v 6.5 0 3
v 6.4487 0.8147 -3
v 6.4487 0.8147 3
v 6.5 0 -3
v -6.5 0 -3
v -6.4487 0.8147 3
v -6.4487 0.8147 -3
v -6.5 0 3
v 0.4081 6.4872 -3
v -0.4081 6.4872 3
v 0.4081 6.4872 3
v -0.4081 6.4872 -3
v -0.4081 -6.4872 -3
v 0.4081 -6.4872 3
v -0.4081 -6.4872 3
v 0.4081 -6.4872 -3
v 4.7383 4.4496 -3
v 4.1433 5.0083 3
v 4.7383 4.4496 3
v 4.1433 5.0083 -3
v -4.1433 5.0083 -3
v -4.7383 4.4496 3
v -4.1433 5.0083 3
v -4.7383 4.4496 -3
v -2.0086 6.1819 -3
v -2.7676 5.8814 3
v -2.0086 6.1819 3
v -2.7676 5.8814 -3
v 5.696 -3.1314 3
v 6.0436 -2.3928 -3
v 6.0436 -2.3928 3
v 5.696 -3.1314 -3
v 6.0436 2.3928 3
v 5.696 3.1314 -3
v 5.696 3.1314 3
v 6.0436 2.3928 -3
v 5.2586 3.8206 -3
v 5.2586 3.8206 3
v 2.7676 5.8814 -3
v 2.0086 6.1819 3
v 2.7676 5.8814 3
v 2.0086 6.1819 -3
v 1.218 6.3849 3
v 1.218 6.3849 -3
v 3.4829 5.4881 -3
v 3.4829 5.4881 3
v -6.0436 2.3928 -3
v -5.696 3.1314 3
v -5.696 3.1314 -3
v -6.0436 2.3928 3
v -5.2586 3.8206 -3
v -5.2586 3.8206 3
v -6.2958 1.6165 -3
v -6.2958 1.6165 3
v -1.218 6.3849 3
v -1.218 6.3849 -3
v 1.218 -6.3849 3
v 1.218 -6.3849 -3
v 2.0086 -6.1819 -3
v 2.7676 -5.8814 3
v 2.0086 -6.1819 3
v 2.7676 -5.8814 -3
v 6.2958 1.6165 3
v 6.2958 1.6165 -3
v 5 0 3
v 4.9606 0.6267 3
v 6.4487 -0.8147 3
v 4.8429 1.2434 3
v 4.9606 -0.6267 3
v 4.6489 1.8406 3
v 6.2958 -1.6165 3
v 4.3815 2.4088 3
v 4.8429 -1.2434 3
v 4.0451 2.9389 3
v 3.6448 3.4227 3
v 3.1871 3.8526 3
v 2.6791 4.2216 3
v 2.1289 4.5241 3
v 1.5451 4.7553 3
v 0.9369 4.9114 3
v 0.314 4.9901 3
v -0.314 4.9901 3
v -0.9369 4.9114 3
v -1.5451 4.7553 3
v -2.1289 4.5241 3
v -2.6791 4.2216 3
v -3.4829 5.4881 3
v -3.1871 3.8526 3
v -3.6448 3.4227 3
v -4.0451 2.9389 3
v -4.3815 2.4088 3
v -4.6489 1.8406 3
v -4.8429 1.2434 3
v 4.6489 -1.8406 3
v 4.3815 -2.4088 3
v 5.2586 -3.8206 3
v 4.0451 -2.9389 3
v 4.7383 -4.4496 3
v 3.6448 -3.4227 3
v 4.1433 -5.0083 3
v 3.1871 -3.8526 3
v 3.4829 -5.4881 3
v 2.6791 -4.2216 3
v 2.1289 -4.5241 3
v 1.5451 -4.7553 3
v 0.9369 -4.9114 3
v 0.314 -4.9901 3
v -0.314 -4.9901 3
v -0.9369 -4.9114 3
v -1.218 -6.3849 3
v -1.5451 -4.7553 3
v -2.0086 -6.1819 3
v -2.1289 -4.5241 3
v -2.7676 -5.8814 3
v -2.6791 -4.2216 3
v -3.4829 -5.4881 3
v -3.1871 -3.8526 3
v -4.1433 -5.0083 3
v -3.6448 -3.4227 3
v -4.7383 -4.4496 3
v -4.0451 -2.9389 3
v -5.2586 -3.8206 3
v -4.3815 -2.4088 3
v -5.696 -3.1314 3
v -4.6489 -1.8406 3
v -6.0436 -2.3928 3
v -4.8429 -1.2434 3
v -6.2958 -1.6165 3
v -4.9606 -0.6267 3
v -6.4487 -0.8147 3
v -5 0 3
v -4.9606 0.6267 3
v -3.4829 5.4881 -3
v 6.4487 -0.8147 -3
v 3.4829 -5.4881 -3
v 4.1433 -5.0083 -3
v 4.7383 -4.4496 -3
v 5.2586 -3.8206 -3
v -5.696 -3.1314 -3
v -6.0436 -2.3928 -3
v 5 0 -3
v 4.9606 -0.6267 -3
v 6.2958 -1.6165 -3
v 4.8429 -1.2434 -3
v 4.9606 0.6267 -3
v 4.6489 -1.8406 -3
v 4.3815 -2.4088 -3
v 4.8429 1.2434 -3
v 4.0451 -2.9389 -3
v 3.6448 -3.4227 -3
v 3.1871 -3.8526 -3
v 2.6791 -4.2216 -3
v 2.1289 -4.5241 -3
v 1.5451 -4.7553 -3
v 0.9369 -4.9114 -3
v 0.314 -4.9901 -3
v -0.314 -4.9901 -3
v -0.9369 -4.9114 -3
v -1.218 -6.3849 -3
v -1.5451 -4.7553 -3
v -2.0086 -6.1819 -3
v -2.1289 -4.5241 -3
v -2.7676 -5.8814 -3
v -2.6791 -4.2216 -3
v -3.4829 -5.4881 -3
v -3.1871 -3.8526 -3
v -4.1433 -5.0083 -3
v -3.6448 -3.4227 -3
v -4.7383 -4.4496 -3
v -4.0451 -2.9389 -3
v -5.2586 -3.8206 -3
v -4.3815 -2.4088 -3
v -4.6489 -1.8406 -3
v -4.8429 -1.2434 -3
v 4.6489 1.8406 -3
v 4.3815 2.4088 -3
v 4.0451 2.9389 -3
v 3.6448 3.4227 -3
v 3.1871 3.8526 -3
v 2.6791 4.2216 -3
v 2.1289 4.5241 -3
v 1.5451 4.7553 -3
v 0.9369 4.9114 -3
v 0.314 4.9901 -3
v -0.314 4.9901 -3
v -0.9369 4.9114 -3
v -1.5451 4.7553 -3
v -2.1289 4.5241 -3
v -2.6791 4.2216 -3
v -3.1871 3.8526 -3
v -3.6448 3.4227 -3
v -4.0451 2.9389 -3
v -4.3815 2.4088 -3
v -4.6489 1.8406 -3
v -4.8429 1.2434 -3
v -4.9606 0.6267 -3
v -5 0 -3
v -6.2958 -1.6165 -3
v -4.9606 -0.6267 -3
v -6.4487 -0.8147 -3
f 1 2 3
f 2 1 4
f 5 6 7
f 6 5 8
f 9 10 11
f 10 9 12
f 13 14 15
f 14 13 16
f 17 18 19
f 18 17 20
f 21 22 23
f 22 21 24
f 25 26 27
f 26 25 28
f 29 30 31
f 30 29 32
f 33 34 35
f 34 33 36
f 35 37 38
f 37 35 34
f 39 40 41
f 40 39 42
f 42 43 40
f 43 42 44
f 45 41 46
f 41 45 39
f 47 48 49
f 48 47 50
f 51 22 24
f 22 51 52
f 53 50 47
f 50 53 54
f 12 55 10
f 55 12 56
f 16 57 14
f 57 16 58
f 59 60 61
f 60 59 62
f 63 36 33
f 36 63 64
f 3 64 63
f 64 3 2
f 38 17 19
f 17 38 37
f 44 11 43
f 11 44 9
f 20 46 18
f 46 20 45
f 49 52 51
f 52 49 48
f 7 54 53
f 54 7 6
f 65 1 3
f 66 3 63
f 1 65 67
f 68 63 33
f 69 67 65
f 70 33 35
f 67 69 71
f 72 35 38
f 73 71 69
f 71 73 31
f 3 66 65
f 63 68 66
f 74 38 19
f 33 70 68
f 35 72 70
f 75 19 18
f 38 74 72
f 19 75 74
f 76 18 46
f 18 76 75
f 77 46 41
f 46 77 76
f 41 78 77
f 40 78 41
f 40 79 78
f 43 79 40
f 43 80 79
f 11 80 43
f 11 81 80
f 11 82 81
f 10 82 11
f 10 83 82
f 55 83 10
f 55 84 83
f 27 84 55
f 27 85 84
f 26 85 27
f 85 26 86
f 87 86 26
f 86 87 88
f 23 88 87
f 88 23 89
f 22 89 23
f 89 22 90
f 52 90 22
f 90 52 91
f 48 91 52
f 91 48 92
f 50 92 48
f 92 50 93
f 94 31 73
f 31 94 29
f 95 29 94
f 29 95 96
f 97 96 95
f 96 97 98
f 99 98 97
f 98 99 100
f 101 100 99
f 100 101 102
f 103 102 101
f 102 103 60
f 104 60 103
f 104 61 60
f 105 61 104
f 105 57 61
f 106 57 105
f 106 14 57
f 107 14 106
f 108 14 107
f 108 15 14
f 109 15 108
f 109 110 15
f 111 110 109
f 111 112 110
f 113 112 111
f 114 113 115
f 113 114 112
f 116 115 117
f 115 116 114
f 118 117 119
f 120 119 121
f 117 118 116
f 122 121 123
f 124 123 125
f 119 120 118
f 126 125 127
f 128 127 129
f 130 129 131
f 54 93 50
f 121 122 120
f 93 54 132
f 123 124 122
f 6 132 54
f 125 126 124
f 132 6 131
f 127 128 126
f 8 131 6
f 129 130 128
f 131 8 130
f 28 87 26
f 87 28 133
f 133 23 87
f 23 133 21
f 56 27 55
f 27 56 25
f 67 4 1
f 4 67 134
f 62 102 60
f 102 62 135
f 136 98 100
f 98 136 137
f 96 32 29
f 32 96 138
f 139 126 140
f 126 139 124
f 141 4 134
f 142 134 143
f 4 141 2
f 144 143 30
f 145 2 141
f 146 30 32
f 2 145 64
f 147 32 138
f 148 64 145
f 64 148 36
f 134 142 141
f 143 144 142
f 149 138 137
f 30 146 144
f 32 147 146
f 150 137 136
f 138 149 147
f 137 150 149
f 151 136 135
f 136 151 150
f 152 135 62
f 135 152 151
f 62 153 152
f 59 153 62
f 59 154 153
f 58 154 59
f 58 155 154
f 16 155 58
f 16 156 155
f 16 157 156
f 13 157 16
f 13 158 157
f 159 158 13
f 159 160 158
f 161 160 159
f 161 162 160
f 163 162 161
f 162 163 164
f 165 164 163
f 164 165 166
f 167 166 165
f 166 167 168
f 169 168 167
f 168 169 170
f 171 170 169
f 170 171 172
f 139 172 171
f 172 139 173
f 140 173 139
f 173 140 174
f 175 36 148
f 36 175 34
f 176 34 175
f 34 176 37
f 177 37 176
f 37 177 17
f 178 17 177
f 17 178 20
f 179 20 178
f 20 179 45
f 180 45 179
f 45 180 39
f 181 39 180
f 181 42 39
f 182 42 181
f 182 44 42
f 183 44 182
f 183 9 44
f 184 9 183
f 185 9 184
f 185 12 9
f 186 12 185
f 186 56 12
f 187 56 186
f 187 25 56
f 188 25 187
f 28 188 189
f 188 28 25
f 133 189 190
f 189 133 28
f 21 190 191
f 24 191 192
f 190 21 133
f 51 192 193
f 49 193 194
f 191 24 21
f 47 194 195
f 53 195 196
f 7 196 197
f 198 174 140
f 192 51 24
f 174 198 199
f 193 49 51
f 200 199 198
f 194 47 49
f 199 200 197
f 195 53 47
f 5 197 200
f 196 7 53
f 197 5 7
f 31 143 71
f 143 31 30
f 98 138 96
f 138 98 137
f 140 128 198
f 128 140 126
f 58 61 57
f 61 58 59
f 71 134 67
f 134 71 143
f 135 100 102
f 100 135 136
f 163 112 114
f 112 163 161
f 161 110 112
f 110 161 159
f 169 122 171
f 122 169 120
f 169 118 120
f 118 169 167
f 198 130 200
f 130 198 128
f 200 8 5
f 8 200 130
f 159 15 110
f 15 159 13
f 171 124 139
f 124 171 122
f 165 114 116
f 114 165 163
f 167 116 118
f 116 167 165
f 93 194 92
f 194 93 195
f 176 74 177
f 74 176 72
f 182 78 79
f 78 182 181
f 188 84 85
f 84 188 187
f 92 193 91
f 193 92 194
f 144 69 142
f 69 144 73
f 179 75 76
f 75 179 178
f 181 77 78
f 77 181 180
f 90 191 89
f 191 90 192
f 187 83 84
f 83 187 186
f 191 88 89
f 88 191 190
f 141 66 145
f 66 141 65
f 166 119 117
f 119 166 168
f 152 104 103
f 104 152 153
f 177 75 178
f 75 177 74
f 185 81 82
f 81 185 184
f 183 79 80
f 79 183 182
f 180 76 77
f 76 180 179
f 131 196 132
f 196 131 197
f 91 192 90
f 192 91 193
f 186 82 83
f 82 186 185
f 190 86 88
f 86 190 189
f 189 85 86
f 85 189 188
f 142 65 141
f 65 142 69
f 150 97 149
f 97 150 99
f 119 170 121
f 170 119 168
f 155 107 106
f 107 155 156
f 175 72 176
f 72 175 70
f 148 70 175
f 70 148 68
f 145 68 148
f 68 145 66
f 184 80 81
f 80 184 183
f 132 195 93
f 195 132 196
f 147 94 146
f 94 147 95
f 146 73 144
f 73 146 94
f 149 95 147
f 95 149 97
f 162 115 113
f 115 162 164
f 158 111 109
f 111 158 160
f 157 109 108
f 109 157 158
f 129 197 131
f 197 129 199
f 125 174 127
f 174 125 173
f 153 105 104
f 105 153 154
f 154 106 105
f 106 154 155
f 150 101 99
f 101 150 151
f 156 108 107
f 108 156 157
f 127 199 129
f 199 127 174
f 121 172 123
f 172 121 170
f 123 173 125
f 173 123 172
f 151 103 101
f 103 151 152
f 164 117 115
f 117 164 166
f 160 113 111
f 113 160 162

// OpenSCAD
$fn = 50;


difference() {
	union() {
		translate(v = [0, 0, -3.0000000000]) {
			cylinder(h = 6, r = 6.5000000000);
		}
	}
	union() {
		translate(v = [0, 0, -100.0000000000]) {
			cylinder(h = 200, r = 5.0000000000);
		}
	}
}
